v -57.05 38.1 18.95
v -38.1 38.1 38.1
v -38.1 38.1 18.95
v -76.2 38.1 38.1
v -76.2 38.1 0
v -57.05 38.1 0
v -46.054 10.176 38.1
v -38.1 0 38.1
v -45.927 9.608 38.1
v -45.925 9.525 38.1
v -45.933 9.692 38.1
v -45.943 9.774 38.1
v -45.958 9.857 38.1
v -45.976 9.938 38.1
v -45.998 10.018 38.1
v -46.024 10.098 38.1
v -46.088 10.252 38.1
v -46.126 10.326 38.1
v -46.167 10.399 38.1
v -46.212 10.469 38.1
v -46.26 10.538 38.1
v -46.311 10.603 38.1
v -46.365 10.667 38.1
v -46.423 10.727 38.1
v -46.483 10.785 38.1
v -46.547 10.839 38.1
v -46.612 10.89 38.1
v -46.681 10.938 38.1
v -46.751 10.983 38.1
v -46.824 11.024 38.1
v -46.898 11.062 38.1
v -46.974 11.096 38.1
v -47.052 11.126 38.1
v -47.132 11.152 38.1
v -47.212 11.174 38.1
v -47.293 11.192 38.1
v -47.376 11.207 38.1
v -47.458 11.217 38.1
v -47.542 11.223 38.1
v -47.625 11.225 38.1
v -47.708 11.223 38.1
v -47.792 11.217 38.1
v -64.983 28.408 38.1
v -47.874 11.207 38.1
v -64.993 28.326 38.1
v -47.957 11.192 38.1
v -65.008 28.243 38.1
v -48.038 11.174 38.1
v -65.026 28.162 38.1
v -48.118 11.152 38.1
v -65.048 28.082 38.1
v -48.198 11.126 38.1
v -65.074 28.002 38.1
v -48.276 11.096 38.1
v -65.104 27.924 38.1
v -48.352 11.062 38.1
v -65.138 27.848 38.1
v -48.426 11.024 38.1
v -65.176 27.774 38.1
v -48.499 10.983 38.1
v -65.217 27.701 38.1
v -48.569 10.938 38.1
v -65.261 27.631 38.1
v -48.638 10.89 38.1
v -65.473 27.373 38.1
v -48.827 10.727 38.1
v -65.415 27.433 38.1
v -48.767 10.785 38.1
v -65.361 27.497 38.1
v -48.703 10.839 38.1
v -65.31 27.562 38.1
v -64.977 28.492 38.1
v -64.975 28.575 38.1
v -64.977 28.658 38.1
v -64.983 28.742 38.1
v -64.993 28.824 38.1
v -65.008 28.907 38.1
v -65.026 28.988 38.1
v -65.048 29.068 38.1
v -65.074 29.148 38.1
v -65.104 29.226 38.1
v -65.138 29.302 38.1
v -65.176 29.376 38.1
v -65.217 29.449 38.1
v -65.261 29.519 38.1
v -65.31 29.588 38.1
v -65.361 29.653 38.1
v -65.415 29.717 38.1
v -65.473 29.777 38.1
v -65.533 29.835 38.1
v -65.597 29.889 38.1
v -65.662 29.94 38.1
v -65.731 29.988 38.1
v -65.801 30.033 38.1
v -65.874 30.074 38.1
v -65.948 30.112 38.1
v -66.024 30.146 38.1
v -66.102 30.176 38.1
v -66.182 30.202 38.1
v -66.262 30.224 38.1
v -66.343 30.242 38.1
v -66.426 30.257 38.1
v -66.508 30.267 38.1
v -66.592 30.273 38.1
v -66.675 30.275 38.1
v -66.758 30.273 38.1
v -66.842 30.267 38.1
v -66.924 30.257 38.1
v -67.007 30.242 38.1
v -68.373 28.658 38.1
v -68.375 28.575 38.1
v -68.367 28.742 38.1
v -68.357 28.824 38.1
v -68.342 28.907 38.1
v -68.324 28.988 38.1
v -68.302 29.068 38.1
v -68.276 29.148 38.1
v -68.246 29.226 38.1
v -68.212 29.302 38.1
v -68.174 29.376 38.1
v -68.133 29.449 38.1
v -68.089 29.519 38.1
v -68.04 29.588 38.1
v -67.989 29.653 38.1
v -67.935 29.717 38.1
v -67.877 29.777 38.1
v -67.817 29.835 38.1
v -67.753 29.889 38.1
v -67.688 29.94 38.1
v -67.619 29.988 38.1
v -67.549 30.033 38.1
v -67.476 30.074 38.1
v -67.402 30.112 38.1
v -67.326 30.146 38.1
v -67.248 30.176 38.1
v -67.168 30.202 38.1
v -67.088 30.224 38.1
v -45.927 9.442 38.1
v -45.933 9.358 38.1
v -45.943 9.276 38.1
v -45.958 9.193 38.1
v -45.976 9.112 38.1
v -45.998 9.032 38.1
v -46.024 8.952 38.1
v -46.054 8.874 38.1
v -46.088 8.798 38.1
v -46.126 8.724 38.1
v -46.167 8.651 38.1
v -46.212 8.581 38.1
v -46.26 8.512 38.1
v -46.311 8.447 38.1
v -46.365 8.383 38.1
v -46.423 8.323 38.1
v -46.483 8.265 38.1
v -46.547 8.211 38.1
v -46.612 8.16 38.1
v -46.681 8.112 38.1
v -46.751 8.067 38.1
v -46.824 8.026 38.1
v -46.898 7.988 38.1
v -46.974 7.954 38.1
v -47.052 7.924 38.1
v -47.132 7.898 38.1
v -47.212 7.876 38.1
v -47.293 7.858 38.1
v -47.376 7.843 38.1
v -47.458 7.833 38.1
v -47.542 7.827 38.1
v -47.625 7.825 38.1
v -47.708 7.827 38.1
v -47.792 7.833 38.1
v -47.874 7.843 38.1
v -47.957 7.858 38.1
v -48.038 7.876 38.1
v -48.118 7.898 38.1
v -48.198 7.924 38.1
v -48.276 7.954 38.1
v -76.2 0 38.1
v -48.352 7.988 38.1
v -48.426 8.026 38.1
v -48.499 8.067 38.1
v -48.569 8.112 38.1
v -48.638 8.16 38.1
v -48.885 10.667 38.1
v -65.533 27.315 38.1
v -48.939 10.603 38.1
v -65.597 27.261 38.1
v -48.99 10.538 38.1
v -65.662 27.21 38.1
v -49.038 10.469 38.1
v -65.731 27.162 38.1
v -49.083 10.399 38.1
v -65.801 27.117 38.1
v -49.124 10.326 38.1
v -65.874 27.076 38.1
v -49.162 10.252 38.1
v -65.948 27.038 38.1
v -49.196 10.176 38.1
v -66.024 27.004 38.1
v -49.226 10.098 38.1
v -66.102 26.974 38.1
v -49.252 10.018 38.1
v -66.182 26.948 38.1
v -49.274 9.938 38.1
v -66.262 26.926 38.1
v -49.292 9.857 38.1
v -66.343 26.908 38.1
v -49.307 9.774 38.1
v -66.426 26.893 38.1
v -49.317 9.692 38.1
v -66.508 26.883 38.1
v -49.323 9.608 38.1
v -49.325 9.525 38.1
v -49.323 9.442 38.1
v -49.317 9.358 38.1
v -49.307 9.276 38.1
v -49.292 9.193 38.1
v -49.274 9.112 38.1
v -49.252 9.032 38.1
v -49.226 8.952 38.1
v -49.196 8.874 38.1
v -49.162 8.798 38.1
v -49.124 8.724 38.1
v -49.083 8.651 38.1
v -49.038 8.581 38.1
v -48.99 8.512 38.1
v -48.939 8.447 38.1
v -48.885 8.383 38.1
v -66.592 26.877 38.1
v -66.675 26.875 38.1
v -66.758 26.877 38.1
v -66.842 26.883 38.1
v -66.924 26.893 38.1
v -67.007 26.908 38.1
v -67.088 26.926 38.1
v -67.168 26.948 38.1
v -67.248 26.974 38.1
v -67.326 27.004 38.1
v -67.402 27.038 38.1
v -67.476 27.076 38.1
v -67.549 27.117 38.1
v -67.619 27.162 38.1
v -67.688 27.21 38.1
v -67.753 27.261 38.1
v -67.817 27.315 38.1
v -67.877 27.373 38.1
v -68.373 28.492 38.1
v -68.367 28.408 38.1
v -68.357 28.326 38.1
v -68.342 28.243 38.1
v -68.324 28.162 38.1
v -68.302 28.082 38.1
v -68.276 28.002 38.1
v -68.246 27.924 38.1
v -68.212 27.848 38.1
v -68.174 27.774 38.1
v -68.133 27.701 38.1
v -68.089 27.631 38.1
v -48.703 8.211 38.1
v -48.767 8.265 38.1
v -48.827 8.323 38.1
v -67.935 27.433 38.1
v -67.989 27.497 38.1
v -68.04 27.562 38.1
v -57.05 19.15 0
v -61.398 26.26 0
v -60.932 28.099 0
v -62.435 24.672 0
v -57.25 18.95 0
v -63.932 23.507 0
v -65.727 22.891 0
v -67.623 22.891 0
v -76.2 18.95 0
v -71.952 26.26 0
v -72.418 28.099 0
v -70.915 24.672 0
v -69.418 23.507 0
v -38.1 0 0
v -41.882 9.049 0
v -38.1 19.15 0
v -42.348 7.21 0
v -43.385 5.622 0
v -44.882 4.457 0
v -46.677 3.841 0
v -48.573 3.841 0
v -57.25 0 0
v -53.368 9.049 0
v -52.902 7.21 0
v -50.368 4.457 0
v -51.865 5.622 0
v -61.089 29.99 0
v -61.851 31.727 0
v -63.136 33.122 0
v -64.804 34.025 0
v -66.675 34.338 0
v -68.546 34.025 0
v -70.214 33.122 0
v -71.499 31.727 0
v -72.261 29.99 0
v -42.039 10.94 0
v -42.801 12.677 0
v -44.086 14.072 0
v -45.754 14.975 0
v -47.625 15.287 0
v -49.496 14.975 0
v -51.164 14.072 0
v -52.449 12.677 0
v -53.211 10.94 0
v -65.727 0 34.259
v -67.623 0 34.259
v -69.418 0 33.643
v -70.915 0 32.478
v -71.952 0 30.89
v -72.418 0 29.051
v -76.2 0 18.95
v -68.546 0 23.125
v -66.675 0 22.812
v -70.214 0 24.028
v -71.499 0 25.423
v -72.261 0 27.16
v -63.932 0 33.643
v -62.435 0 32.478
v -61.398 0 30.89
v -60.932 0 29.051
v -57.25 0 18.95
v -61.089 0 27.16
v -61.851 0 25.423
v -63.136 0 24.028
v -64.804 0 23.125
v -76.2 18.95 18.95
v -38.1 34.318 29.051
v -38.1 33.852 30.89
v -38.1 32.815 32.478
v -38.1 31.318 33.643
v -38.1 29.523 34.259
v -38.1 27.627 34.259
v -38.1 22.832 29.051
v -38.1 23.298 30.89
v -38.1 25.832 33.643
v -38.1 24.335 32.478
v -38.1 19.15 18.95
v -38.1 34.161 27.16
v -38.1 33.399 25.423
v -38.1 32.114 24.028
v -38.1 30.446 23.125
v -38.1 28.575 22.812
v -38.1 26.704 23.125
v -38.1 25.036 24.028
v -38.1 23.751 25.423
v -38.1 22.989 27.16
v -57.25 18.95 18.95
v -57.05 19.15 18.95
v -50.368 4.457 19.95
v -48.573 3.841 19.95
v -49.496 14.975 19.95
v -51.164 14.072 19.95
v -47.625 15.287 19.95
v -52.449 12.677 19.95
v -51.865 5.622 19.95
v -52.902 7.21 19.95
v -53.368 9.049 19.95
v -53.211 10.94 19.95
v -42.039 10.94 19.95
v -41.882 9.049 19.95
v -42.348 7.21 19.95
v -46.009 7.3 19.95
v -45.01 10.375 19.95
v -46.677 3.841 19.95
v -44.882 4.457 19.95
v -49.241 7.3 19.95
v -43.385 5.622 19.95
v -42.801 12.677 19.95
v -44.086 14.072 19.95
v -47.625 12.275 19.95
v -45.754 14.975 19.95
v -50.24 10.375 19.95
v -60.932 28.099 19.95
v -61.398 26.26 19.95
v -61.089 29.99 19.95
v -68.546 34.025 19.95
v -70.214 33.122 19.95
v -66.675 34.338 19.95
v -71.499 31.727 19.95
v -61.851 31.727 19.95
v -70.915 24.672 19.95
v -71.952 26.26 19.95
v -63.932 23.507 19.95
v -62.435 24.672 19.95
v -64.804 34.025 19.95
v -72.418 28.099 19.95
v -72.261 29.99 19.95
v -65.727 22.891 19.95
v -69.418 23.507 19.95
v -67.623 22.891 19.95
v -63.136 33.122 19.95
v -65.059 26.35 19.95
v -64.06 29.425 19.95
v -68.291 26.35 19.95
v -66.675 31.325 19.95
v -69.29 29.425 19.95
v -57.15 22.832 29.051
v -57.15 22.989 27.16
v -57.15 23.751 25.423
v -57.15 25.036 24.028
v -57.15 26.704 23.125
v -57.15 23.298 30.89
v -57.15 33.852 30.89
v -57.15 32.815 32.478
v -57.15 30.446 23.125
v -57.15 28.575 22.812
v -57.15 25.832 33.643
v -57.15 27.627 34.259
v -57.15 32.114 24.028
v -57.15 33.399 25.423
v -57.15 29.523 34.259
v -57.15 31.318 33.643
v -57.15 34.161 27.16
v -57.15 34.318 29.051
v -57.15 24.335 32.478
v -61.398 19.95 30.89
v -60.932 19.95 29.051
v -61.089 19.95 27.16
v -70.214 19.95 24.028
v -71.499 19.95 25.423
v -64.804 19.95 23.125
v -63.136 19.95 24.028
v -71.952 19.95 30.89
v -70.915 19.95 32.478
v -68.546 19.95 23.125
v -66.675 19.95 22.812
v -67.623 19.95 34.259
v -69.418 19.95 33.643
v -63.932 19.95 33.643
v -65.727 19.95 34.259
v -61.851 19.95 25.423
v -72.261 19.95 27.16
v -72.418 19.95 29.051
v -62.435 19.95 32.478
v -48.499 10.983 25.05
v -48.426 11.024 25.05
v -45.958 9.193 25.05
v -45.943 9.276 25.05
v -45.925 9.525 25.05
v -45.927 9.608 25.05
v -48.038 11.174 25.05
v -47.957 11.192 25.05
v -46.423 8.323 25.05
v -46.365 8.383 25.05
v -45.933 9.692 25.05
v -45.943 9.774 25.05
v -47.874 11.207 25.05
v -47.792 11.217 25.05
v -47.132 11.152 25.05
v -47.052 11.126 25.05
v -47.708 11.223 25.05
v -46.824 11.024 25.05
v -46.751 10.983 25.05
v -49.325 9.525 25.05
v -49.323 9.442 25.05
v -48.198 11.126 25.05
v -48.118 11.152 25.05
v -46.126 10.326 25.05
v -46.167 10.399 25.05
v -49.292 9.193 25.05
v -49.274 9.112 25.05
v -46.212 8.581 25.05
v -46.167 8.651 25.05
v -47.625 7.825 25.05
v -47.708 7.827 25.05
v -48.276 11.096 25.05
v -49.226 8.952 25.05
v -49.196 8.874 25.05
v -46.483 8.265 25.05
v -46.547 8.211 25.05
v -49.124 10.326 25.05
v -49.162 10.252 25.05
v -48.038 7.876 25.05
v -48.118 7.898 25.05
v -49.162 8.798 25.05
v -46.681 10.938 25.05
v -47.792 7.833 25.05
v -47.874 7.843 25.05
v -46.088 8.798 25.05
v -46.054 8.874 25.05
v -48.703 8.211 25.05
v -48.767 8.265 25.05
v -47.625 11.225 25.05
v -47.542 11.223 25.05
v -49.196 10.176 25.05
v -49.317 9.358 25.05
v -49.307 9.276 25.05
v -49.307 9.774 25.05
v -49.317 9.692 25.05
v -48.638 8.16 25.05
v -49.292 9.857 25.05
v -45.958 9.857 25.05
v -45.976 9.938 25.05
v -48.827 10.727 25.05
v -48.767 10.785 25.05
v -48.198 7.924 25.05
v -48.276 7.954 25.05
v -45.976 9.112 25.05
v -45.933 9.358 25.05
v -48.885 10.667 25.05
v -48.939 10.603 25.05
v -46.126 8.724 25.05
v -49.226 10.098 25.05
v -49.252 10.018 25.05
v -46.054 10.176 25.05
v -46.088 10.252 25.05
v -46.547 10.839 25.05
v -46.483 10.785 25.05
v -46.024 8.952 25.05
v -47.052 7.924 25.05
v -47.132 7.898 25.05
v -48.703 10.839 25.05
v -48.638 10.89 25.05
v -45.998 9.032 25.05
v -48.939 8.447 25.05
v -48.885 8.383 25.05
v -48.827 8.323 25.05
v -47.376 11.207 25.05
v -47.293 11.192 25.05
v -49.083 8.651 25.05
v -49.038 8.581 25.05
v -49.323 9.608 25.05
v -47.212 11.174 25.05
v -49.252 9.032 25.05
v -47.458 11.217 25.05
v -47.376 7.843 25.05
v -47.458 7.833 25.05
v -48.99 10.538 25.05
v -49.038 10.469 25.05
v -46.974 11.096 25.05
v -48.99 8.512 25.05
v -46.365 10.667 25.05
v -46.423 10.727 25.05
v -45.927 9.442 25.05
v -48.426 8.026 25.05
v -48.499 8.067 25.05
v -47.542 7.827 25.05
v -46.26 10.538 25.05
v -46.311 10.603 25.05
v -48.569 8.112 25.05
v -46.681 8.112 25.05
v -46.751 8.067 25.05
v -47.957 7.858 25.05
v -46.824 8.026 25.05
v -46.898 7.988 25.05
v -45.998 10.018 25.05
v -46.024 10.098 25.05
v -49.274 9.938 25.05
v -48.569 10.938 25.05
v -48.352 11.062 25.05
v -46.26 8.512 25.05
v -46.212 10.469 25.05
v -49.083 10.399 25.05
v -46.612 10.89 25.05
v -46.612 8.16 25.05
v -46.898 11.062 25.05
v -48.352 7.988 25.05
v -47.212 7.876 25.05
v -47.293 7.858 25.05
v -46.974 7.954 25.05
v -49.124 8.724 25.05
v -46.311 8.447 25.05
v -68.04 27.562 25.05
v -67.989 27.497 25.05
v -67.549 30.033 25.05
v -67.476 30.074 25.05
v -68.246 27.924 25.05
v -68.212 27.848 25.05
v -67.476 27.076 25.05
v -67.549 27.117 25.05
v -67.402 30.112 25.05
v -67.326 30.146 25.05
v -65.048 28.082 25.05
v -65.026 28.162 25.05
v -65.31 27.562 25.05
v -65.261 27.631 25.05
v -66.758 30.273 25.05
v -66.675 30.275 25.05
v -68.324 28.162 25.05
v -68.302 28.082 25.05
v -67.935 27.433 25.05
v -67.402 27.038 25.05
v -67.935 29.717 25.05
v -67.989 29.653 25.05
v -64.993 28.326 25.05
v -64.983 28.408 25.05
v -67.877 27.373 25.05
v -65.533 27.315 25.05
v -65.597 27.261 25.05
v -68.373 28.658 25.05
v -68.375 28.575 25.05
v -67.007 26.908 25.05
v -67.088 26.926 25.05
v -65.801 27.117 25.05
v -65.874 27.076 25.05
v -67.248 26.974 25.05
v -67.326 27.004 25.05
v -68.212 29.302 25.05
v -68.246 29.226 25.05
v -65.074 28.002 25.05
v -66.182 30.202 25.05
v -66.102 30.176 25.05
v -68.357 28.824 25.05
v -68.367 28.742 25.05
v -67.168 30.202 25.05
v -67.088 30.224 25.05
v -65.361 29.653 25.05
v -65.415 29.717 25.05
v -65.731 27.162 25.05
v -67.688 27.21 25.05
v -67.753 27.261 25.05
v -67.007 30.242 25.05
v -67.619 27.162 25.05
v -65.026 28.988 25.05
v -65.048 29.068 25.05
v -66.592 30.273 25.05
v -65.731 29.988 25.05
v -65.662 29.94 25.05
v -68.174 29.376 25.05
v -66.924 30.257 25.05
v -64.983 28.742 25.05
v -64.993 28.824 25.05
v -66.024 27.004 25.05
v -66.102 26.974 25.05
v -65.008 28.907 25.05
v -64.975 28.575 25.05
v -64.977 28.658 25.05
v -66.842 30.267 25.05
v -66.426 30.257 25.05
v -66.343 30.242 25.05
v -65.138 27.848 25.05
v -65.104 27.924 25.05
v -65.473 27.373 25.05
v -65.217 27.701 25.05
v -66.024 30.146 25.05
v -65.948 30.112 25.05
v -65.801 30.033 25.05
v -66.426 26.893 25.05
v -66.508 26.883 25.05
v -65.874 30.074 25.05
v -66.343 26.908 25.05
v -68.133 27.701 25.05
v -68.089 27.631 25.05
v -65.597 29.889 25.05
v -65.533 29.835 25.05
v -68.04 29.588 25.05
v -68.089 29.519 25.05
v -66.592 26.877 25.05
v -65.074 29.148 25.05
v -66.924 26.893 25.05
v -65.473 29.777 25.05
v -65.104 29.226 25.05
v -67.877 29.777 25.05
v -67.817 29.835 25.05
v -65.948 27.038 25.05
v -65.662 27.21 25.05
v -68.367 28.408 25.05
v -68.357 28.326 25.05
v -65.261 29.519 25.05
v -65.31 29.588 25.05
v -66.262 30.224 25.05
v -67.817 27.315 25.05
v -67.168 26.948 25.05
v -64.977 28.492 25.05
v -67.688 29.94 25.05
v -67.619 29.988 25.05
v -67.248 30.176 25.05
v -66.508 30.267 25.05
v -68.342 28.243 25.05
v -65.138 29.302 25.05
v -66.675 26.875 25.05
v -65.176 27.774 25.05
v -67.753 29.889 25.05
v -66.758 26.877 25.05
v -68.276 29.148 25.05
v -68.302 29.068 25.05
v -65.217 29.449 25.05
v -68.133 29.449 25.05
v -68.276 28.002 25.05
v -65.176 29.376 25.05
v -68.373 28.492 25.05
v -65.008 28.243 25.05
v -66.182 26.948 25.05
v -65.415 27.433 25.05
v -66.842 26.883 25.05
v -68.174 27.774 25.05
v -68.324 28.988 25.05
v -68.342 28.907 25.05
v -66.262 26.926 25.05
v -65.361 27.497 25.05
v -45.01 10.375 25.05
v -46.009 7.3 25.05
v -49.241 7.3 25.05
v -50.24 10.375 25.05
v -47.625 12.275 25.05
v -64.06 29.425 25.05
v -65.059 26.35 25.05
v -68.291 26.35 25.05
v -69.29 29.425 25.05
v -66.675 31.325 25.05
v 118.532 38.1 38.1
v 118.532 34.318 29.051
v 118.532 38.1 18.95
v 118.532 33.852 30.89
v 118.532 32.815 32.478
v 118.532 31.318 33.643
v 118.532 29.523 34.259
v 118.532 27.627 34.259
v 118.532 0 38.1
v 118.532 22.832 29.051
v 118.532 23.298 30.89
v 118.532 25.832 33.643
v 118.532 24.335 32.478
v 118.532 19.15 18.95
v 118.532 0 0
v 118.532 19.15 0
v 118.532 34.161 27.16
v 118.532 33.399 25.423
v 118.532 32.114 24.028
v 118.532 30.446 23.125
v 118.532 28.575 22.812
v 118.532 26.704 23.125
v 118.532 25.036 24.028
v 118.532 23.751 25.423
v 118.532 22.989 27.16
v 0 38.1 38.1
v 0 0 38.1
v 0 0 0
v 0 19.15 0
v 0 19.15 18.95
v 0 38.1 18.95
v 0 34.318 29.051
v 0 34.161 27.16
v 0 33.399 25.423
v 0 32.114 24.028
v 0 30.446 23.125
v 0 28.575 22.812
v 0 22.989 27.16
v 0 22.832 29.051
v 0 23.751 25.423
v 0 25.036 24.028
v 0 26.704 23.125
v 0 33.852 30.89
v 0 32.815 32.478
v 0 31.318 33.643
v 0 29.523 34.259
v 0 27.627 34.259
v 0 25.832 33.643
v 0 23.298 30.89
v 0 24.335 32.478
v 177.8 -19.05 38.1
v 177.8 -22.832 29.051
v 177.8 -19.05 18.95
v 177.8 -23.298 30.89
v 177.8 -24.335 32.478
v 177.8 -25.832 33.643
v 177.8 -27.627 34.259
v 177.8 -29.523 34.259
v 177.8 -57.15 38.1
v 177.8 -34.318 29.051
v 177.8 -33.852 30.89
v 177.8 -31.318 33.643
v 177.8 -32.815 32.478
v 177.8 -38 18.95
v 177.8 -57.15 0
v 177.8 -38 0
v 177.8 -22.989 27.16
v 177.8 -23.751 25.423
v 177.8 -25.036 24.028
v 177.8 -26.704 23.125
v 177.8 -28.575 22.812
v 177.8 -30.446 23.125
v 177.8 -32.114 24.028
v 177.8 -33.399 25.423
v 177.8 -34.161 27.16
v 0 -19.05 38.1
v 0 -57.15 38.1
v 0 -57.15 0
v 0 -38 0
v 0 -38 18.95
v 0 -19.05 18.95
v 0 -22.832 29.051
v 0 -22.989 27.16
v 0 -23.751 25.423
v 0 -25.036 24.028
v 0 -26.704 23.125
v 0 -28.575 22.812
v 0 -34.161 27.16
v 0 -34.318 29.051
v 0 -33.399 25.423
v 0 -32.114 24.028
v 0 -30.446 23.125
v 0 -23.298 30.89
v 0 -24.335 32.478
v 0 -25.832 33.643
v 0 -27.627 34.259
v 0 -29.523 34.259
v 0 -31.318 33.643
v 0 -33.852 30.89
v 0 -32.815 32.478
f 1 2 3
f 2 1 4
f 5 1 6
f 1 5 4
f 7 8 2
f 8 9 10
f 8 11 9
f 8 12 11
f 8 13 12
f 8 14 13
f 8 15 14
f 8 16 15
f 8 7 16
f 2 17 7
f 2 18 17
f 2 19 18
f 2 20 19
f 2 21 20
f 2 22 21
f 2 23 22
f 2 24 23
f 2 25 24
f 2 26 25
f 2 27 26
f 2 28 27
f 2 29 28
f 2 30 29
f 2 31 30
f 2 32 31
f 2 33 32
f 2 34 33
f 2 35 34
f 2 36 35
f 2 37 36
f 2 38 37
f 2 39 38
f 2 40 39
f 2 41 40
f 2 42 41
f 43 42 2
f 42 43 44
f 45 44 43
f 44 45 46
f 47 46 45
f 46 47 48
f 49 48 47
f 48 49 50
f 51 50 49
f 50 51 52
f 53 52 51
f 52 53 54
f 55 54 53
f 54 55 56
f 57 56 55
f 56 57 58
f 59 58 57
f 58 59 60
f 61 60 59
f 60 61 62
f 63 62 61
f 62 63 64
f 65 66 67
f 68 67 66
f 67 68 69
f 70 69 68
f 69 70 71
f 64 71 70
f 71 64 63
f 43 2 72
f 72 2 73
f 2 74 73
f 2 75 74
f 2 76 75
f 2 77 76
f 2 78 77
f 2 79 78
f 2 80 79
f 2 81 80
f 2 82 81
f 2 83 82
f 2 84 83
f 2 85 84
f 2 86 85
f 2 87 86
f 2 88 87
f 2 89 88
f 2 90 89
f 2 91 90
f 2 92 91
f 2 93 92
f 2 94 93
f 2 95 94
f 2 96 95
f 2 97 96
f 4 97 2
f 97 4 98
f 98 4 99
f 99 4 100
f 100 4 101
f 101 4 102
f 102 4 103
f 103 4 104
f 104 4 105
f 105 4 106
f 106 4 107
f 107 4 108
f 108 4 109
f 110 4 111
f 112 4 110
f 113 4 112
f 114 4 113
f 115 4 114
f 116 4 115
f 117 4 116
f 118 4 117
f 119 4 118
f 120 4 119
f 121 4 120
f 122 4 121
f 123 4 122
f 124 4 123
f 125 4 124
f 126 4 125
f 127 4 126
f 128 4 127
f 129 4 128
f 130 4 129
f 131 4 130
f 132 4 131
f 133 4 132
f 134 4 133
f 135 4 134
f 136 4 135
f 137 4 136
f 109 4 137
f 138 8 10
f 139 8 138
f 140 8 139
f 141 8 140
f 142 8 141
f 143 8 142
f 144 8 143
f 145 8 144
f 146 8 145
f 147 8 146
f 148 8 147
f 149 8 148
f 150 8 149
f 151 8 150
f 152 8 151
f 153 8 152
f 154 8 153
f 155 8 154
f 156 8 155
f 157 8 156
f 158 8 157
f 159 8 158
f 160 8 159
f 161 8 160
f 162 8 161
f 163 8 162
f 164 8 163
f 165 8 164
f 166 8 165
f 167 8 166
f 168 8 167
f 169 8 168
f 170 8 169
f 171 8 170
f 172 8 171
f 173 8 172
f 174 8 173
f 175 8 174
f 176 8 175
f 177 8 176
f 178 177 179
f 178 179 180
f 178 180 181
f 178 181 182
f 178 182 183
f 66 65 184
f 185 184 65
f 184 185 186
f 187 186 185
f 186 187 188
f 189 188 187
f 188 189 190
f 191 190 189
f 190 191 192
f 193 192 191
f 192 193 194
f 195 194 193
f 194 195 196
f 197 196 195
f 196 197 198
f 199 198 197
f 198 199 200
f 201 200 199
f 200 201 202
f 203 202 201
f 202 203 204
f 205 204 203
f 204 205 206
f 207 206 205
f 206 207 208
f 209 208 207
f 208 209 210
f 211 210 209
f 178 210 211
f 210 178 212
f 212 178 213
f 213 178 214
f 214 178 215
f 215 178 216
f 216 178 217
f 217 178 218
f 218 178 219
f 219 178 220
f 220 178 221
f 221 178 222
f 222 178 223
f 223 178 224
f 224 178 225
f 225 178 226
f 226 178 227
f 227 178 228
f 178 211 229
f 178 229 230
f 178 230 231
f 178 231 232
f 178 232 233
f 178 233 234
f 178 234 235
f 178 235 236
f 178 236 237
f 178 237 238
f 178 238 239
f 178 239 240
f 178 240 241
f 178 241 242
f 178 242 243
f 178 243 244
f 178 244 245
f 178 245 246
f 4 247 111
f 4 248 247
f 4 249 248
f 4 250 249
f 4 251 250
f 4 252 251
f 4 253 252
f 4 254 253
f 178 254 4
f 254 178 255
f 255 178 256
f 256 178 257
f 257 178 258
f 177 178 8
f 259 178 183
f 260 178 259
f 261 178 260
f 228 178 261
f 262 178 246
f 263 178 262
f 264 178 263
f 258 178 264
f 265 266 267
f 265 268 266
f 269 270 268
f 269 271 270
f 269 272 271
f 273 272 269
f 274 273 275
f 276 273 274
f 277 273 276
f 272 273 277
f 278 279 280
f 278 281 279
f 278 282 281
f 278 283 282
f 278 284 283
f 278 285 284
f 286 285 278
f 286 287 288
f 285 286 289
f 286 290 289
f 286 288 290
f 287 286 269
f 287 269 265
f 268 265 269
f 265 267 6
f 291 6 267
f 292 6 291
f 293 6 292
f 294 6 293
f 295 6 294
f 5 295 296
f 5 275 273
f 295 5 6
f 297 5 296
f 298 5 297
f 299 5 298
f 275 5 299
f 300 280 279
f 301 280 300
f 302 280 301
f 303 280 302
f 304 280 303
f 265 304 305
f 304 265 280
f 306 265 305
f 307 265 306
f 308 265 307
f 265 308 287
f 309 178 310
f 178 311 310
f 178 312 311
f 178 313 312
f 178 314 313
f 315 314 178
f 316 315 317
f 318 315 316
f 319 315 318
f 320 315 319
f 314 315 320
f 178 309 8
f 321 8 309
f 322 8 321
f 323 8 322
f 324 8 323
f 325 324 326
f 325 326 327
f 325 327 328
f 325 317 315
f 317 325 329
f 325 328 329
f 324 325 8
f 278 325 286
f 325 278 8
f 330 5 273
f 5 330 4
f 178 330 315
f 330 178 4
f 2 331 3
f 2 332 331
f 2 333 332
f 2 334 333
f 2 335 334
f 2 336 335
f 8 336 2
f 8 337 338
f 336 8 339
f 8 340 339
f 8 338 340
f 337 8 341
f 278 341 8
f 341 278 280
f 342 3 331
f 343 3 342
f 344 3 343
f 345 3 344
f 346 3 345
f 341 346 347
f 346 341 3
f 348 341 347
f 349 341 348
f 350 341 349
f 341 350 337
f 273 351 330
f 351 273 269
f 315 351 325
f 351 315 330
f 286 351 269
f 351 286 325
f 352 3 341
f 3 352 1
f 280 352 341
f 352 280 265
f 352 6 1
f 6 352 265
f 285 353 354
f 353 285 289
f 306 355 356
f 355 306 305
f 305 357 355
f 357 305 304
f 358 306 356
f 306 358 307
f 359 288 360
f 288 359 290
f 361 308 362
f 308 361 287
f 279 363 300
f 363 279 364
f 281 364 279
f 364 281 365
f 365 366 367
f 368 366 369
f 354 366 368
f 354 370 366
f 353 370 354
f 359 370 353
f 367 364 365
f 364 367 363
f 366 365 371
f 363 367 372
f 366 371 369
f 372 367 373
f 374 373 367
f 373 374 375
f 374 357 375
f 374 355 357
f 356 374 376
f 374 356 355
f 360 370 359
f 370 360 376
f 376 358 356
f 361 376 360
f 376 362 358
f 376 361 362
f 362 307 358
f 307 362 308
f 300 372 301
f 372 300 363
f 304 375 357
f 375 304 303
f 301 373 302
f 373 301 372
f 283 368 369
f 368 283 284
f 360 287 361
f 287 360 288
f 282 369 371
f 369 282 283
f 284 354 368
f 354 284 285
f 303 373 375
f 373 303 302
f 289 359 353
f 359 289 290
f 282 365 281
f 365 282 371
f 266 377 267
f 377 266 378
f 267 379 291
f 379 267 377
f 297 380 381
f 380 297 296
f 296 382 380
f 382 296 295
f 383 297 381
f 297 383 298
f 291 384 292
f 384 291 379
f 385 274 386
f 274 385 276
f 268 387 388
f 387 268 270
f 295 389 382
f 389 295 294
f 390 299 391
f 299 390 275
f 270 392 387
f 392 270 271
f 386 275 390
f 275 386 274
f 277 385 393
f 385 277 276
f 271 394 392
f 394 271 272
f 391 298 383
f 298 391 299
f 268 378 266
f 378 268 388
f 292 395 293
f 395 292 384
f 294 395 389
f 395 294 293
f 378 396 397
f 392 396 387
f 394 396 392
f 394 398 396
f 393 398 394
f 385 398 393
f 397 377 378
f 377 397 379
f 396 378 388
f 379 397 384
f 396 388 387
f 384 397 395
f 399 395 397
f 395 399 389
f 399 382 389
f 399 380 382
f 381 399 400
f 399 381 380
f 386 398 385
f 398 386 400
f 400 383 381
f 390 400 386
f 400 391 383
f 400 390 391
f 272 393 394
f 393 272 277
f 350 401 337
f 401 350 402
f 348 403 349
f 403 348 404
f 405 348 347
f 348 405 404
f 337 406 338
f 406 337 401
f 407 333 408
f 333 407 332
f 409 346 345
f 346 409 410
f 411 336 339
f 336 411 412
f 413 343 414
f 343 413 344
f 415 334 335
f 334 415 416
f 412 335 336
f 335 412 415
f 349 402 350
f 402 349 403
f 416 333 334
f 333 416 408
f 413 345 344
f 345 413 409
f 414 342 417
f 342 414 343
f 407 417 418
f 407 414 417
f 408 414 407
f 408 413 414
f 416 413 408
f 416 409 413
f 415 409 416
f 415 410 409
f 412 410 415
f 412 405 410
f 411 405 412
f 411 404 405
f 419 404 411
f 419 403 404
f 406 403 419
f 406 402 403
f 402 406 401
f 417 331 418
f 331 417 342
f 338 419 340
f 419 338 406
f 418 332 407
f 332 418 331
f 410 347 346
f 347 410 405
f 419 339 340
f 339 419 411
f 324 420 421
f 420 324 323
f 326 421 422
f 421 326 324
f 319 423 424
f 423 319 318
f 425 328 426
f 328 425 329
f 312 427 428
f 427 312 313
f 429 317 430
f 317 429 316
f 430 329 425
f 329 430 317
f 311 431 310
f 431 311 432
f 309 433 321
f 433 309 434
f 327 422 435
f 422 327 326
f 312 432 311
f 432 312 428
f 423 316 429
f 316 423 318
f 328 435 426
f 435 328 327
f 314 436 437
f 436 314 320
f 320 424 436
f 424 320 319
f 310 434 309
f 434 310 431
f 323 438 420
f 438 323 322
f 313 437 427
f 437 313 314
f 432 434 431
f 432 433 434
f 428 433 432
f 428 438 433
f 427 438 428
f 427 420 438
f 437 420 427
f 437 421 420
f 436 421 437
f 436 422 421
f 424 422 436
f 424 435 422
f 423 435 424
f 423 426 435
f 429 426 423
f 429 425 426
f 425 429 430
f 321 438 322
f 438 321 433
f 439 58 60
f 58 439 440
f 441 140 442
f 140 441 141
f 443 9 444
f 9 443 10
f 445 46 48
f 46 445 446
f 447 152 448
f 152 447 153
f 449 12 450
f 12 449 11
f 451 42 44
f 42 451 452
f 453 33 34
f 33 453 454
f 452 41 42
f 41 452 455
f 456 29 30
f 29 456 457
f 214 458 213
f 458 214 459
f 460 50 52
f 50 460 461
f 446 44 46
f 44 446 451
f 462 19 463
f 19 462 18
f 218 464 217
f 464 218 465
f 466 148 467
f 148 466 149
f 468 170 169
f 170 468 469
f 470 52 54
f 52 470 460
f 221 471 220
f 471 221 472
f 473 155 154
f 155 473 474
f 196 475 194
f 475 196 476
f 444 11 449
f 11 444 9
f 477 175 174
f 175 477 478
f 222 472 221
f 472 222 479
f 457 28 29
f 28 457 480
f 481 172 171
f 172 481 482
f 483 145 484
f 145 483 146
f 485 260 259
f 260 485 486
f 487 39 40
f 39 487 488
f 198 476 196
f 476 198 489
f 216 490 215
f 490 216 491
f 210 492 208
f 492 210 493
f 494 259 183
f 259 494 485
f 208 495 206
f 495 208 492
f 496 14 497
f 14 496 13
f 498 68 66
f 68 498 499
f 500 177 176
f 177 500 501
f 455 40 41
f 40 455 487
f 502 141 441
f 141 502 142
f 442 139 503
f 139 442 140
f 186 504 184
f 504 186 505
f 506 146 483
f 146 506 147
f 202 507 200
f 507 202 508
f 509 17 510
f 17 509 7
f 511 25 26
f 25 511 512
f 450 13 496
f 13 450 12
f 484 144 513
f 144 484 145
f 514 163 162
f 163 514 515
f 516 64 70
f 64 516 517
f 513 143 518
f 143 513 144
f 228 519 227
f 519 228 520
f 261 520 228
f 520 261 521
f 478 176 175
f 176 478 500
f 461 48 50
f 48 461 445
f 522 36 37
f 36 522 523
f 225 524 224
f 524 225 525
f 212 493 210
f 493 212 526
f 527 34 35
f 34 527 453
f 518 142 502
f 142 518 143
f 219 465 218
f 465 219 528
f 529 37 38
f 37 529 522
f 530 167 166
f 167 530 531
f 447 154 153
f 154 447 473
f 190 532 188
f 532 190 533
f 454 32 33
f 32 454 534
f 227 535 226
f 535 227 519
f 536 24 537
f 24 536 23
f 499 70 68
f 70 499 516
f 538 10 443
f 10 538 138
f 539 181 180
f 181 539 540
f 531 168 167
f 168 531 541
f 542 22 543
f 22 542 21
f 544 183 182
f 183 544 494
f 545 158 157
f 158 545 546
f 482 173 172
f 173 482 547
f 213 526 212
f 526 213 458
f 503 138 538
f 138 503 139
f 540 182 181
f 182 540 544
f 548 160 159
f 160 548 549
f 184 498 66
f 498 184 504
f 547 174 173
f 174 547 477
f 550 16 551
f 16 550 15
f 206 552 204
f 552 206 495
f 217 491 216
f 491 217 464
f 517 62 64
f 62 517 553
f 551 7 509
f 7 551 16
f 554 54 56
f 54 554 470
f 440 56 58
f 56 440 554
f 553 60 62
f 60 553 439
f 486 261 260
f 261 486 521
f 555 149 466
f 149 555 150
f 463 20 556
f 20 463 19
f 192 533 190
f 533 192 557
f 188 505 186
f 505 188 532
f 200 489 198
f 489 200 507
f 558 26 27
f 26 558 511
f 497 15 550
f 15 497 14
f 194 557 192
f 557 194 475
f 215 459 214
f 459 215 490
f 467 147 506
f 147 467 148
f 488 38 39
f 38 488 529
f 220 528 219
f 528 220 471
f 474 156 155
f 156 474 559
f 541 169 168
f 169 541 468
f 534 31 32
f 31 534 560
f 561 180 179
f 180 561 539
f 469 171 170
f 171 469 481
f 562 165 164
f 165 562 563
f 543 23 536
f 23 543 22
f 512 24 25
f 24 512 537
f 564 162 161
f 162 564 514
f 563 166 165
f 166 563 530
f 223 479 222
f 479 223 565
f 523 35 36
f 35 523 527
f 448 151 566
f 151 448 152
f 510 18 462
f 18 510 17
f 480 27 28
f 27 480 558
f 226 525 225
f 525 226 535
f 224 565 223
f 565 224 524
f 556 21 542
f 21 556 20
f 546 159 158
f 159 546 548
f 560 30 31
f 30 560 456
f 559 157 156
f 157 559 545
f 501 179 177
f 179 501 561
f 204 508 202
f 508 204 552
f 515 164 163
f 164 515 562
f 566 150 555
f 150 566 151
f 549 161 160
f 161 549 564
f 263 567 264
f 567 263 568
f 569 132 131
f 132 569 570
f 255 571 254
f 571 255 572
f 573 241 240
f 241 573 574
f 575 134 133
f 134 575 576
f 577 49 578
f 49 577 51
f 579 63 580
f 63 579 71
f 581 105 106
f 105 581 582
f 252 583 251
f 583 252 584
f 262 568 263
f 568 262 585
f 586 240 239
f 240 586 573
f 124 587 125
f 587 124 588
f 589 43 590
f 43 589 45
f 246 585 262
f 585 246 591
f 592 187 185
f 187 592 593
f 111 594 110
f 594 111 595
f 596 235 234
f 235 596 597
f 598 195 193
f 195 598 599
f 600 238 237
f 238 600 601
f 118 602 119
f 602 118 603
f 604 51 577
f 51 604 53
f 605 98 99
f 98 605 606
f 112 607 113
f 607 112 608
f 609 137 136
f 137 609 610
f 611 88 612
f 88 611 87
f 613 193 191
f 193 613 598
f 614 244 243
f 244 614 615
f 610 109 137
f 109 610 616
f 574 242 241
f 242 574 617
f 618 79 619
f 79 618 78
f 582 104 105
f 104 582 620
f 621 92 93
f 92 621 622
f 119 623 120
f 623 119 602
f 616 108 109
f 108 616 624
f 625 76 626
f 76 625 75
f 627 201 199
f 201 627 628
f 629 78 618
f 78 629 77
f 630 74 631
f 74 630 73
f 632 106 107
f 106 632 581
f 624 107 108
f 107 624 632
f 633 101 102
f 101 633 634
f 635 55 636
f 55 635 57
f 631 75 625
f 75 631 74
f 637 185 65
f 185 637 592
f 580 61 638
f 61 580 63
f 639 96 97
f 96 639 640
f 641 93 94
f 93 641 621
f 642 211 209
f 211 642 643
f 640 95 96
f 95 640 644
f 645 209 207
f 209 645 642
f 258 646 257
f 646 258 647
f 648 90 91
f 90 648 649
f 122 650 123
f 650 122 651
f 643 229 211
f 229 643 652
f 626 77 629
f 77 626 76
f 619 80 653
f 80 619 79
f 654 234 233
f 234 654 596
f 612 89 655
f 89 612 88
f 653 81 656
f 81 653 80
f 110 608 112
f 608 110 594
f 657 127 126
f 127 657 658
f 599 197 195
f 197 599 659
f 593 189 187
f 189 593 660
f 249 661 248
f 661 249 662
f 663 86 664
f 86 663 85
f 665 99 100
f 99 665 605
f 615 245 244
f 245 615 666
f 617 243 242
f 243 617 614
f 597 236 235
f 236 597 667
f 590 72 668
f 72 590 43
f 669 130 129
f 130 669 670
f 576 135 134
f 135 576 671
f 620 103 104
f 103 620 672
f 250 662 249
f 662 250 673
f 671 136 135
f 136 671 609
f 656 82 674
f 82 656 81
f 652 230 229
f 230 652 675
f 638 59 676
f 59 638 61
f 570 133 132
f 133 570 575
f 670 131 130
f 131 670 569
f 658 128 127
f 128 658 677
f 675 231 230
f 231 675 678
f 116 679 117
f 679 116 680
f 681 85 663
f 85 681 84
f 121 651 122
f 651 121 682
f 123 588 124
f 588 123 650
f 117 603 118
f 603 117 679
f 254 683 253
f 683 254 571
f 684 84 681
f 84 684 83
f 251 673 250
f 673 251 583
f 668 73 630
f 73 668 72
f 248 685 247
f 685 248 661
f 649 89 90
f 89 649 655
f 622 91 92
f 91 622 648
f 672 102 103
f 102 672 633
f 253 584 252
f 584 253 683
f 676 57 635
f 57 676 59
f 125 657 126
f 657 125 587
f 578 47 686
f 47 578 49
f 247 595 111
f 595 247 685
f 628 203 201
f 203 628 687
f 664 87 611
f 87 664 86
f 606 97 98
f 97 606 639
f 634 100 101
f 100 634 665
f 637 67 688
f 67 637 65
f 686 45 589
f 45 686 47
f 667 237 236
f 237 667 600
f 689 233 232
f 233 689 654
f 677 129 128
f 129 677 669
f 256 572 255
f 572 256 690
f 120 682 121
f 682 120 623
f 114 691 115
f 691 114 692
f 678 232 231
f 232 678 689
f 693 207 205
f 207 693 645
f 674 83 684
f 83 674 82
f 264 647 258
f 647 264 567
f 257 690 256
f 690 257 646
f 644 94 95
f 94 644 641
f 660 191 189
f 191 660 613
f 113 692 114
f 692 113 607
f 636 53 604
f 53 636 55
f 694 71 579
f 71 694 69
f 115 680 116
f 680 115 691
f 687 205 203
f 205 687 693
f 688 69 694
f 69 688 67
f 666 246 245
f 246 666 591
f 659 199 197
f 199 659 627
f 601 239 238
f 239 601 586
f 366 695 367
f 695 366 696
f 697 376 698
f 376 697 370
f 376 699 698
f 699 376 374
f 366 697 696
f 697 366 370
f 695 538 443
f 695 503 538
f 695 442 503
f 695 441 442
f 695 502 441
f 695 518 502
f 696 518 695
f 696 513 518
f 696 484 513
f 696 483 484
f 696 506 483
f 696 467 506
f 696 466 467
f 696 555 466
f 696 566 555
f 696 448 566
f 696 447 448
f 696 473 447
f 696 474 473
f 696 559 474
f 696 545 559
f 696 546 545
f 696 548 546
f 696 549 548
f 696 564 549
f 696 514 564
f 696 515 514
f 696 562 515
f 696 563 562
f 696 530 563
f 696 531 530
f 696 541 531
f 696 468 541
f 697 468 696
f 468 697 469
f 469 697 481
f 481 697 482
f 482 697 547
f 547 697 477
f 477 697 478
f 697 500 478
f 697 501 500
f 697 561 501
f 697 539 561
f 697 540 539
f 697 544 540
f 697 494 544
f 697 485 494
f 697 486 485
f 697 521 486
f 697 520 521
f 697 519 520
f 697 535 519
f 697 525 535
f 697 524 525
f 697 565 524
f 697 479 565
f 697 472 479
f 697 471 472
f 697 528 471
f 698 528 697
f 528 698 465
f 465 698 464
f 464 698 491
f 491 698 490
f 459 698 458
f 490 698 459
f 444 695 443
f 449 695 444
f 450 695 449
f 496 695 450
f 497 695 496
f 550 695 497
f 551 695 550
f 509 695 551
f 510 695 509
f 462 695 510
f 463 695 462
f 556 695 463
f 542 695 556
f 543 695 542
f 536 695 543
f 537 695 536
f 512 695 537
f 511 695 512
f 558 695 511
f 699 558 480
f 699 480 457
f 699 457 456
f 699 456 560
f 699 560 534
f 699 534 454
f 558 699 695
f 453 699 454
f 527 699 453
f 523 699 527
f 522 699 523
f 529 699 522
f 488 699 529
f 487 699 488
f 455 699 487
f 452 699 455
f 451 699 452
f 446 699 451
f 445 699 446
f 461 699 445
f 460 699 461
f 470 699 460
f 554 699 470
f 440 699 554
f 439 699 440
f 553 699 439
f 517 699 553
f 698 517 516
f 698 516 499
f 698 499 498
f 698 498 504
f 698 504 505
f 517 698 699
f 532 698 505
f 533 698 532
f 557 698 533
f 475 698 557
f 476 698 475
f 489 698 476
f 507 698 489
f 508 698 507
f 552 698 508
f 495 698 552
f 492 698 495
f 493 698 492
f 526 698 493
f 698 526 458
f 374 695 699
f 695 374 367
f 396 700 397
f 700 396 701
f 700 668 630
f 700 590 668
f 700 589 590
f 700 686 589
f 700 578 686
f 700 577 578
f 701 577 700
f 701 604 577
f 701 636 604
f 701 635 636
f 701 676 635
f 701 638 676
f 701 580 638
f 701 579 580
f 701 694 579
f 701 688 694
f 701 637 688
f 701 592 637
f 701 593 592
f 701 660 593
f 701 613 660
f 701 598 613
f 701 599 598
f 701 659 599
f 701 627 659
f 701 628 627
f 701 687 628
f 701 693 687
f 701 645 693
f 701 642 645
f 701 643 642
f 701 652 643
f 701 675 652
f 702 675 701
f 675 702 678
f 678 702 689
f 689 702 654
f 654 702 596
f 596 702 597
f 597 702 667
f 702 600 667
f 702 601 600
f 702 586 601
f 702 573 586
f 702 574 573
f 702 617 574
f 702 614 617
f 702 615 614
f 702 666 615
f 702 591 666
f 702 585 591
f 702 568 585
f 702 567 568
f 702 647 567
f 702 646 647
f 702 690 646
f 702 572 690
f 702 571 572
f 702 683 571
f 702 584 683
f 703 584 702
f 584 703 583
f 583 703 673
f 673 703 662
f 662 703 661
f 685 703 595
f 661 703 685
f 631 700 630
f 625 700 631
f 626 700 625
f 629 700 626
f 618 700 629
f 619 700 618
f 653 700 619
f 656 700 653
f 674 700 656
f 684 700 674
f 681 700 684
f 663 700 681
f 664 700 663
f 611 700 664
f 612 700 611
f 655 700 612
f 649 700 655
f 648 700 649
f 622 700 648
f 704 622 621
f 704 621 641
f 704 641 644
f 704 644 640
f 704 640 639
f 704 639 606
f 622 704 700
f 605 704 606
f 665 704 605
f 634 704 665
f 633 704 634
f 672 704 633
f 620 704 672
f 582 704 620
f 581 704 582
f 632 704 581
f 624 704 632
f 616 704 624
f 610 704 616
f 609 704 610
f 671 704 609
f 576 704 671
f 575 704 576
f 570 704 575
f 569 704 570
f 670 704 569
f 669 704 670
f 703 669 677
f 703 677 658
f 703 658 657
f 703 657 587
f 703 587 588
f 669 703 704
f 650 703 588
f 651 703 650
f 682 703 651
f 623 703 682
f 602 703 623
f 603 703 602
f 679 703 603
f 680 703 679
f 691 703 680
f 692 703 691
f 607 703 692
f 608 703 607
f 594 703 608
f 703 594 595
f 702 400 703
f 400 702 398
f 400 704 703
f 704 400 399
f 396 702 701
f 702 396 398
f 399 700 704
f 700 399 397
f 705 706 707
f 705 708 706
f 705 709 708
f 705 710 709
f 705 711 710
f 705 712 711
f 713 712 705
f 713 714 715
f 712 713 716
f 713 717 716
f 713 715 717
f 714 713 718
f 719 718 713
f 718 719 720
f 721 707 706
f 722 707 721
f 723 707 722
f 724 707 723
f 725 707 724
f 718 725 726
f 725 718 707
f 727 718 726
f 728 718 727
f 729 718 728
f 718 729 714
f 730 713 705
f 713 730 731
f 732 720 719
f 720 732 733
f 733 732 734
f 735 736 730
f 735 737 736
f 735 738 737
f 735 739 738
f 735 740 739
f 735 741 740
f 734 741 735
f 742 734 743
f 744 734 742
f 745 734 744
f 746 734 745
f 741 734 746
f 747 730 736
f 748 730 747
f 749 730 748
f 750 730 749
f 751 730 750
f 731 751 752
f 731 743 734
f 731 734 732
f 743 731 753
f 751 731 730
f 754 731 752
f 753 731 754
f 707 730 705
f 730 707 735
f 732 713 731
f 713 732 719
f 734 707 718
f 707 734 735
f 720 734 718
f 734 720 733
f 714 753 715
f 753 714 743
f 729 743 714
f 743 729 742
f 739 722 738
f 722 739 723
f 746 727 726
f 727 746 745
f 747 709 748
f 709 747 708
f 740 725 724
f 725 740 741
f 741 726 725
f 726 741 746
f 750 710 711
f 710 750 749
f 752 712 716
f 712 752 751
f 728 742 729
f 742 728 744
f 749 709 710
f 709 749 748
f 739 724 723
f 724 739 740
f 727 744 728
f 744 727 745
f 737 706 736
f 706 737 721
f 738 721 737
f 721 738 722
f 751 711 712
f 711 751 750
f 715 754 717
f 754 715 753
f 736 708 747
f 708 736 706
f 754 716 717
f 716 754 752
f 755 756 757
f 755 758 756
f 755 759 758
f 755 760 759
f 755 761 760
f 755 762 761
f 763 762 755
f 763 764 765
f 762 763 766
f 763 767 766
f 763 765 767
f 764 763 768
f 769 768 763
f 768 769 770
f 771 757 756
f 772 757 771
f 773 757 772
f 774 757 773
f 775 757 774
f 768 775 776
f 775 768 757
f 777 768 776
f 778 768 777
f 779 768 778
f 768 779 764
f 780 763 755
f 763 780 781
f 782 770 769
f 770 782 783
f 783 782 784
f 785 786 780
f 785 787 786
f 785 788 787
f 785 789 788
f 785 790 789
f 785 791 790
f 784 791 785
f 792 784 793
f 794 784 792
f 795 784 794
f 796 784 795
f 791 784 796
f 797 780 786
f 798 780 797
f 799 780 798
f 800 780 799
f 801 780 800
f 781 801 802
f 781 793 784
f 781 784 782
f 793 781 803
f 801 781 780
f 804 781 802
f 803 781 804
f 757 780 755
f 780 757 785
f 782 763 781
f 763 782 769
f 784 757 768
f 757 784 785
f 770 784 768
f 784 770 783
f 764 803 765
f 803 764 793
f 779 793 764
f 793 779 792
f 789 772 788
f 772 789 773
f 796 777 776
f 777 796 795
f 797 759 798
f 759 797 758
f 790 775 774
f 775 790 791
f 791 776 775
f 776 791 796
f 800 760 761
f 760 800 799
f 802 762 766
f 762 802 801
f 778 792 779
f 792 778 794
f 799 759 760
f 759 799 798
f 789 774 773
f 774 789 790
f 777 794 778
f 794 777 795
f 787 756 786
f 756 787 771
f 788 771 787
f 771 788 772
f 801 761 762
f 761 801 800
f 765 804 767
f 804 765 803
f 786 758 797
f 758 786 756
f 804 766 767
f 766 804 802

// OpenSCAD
inch = 25.4;

fx = 15.5;
fy = 19.5;
fz = 0.75;
ds = 0.375; // dowel size 3/8 inch
dl = 1.5;   // dowel length 1.5 inches
hyl = 4.6666;    // (19.5 - (2 * .75)) / 3
hxl = 7;    // (15.5 - (2 * .75)) / 3  

module filter()
{
// 15.5 x 19.5 x 0.75
 cube([fx * inch,fy * inch,fz * inch]);

}

module corner()
{
    difference(){
        cube([(fz+.75)*inch,(fz+.75)*inch,(fz+.75)*inch]);
        translate([-.1,.75 * inch+.1,-.1]) cube([fz * inch, fz * inch, fz * inch]);
        translate([(fz)*inch+.1,-.1,-.1]) cube([fz * inch, fz * inch, fz * inch]);
        translate([fz/2*inch,fz/2*inch,-.1]) cylinder(r=((ds*inch)+2)/2,h=((dl*inch)+2)/2);
        translate([((fz+(fz/2))*inch),((fz+(fz/2))*inch),-.1]) cylinder(r=((ds*inch)+2)/2,h=((dl*inch)+2)/2);
        translate([((fz + (fz/2)))*inch,dl/2*inch,((.5 * fz) + fz)*inch]) rotate([90,90,0]) cylinder(r=((ds*inch)+2)/2,h=((dl*inch)+2)/2);
        translate([-.1,(fz+fz/2)*inch,((.5 * fz) + fz)*inch]) rotate([0,90,0]) cylinder(r=((ds*inch)+2)/2,h=((dl*inch)+2)/2);
        
        translate([fz/2*inch,fz/2*inch,((fz+.75)/2)*inch]) cylinder(r=3.4/2,h=((dl*inch)+2)/2,$fn=128);
        translate([((fz+(fz/2))*inch),((fz+(fz/2))*inch),((fz+.75)/2)*inch]) cylinder(r=3.4/2,h=((dl*inch)+2)/2,$fn=128);
        
        translate([fz/2*inch,fz/2*inch,((fz+.75)/2)*inch]) cylinder(r=5.5/2,h=6,$fn=5);
        translate([((fz+(fz/2))*inch),((fz+(fz/2))*inch),((fz+.75)/2)*inch]) cylinder(r=5.5/2,h=6,$fn=5);
       
        }
}

//corner();
module ypart()
{
  difference(){
         cube([hyl*inch,(fz+.75)*inch,(fz+.75)*inch]);
         translate([-1,.75*inch+.1,-.1]) cube([(hyl * inch)+2, fz * inch, fz * inch]);
         translate([-.1,(fz+fz/2)*inch,((.5 * fz) + fz)*inch]) rotate([0,90,0]) cylinder(r=((ds*inch)+2)/2,h=(hyl * inch)+2);
         
         
         }
}

module xpart()
{
  difference(){
         cube([hxl*inch,(fz+.75)*inch,(fz+.75)*inch]);
         translate([-1,.75*inch+.1,-.1]) cube([(hxl * inch)+2, fz * inch, fz * inch]);
         translate([-.1,(fz+fz/2)*inch,((.5 * fz) + fz)*inch]) rotate([0,90,0]) cylinder(r=((ds*inch)+2)/2,h=(hxl * inch)+2);
         
         
         }
}

translate([(0-(2*fz))*inch,0,0]) rotate([0,0,90]) corner();
ypart();
translate([ 0, 0-(3*fz) * inch,0]) xpart();
